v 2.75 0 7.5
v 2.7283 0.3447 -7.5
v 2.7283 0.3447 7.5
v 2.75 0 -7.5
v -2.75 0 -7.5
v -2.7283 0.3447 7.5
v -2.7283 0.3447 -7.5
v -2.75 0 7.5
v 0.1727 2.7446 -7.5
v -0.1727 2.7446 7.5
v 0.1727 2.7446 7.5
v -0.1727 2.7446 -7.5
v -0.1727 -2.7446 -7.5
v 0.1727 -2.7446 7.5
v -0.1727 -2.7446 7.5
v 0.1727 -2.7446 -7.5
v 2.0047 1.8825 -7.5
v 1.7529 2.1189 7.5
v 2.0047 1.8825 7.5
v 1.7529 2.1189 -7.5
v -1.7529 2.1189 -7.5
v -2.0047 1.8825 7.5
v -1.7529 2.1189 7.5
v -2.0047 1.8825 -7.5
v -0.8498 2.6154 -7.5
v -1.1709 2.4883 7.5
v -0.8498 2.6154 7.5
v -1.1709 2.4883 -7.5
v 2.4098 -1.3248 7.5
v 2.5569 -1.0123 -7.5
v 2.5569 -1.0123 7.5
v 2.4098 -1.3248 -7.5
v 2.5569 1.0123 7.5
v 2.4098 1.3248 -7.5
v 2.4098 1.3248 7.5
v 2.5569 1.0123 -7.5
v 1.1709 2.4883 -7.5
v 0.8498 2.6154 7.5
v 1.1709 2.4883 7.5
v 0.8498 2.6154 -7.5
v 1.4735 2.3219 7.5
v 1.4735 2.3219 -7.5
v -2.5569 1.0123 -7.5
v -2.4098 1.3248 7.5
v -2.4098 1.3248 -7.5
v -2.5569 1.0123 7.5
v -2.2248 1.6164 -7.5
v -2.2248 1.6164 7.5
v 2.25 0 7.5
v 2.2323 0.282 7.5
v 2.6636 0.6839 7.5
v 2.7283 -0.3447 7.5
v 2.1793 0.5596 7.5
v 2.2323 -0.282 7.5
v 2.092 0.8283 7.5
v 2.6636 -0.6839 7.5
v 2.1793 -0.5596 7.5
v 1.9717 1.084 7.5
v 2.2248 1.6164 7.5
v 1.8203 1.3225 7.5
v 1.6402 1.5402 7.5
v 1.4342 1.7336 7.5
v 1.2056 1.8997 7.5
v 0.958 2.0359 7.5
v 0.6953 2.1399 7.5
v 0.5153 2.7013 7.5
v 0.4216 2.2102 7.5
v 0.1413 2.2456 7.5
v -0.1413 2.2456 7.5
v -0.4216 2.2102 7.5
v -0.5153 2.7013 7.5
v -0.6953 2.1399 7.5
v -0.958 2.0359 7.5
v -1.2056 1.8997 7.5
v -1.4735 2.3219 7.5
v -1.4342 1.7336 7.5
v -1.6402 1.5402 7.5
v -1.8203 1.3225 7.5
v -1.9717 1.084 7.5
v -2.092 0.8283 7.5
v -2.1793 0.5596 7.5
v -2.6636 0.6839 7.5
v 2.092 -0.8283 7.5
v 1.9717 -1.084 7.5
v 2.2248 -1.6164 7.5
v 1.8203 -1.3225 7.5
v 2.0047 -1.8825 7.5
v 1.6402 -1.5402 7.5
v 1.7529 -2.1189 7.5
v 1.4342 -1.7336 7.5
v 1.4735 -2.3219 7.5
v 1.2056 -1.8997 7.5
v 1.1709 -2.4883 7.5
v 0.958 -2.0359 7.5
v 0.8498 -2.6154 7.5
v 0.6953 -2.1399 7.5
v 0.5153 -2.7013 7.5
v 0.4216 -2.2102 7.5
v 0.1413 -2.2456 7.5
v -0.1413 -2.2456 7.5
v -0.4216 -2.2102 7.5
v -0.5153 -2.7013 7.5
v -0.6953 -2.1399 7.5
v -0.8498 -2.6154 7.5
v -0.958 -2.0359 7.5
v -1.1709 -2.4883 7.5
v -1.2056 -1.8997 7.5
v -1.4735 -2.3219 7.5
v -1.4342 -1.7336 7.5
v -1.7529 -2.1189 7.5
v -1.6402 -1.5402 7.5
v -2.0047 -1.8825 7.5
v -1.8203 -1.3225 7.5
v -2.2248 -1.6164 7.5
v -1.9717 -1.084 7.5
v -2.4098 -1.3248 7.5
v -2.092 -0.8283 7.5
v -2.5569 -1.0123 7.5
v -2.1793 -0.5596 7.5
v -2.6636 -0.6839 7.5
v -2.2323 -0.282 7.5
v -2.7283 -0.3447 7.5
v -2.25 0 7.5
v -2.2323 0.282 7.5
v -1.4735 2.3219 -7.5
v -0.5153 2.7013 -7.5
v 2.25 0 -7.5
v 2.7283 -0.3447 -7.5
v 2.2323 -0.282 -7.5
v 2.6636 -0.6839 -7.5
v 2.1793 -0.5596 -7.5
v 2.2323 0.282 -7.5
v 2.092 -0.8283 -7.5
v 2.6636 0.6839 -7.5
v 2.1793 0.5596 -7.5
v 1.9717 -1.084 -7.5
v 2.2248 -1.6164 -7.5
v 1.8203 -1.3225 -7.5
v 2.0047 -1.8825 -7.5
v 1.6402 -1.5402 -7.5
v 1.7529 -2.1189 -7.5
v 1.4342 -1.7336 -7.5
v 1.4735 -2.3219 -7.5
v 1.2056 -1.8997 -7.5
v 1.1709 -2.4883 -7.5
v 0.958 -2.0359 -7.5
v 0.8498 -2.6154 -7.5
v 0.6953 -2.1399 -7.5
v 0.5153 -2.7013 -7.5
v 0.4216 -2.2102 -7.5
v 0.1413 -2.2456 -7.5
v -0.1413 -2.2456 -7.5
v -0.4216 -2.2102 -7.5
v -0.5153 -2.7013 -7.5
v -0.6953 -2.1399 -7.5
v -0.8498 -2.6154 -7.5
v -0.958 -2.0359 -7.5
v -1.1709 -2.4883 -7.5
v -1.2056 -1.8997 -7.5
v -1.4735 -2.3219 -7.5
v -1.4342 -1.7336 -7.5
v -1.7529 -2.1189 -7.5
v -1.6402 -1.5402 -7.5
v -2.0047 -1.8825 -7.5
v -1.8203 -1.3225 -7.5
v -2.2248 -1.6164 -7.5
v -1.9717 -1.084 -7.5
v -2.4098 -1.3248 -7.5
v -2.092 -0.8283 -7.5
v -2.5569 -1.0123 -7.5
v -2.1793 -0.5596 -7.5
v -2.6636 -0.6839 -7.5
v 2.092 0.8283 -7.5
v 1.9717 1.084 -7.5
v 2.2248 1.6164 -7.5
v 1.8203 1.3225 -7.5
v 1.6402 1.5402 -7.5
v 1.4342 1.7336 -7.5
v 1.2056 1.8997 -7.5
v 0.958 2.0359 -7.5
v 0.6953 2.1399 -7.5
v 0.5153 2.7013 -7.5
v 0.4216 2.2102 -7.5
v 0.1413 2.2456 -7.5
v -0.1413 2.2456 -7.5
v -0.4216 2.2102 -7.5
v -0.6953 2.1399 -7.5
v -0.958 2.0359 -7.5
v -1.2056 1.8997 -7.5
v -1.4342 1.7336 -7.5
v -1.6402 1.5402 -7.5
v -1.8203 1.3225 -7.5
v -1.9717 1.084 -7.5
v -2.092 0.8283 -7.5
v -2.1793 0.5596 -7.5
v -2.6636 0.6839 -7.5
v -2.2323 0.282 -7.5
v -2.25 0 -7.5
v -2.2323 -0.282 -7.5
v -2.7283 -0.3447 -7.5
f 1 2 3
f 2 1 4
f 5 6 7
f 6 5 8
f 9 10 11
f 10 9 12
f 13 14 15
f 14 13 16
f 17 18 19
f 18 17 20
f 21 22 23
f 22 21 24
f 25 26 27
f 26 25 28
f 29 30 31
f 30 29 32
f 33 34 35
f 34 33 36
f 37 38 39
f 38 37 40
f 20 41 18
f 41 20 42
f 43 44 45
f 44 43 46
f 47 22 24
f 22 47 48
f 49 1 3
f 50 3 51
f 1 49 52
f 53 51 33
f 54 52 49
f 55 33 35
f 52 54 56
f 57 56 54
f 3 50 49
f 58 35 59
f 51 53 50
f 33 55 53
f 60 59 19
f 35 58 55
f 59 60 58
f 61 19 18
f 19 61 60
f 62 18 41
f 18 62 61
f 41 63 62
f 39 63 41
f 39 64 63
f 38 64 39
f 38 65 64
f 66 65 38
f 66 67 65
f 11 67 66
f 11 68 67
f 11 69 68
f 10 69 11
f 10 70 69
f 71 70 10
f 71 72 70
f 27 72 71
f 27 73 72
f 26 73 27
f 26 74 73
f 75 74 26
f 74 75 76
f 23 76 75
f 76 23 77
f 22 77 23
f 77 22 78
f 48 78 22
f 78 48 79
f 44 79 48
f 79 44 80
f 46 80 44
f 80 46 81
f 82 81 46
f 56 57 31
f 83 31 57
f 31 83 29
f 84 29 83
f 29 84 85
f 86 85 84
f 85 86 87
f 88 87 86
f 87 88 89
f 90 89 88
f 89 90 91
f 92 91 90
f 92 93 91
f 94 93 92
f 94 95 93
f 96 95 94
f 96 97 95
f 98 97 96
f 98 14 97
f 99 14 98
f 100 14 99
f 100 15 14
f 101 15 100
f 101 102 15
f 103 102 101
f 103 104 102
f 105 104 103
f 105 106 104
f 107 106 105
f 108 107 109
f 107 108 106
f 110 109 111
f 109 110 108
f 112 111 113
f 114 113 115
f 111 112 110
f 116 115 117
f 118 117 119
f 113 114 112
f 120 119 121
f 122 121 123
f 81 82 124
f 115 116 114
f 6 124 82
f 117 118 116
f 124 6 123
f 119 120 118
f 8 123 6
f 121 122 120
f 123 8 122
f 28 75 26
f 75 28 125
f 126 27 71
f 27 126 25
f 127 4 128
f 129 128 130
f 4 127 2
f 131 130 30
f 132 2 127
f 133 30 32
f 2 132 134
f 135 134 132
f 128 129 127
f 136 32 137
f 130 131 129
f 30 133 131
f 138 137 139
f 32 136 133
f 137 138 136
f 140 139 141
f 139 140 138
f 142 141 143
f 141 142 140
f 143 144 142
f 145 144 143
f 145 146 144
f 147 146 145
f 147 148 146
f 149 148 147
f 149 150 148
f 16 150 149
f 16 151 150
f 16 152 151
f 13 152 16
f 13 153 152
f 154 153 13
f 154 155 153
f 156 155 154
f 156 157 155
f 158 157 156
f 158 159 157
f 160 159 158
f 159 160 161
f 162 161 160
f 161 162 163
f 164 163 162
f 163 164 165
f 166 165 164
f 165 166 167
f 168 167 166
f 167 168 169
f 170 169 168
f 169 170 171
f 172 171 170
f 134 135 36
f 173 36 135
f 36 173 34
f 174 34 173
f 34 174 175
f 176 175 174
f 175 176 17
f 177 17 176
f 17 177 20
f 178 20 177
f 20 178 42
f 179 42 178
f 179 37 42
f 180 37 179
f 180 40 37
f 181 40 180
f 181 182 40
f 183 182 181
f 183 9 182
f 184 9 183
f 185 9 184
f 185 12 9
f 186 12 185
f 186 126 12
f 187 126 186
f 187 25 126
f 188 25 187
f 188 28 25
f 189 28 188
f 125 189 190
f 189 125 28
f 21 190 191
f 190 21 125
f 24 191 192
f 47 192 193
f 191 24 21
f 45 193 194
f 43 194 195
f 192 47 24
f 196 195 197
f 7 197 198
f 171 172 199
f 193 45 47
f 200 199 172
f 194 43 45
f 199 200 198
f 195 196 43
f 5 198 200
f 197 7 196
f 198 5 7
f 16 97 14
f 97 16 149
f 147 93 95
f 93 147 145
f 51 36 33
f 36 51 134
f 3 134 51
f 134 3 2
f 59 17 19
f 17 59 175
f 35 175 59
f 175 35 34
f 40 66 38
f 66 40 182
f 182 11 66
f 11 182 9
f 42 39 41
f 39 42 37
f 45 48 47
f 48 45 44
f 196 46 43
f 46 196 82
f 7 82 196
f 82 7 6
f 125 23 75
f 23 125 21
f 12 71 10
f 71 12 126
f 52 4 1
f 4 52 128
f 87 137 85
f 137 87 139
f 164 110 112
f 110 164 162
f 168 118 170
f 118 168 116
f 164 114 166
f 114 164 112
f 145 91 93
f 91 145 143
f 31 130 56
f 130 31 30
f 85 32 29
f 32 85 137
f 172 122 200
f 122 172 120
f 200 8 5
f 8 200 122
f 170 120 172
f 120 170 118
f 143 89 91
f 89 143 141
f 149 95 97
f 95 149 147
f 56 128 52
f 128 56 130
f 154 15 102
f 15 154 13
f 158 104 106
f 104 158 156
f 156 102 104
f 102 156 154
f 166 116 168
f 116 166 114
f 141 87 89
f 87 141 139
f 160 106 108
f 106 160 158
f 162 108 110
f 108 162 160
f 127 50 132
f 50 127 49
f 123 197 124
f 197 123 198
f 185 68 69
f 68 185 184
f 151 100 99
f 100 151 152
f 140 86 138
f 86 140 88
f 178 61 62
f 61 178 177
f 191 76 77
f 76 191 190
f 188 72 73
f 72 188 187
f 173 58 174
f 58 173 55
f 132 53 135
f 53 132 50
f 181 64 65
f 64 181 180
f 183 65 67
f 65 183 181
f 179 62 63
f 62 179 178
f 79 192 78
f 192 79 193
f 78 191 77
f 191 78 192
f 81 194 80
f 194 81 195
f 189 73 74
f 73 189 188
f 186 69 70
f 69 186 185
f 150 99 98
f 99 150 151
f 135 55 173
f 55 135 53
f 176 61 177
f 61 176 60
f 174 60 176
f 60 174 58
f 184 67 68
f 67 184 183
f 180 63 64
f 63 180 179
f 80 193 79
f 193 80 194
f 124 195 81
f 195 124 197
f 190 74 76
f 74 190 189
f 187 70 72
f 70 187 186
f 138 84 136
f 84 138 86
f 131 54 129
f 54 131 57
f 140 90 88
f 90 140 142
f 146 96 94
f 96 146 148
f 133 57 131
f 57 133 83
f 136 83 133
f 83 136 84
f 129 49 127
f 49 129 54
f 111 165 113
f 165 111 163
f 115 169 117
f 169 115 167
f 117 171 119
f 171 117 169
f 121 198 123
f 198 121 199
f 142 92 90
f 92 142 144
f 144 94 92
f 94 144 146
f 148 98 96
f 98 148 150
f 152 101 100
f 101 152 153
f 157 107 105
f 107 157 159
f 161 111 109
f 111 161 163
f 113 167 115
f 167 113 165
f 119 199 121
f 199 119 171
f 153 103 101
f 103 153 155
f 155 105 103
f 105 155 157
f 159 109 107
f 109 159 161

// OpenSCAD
$fn = 50;


difference() {
	union() {
		translate(v = [0, 0, -7.5000000000]) {
			cylinder(h = 15, r = 2.7500000000);
		}
	}
	union() {
		translate(v = [0, 0, -100.0000000000]) {
			cylinder(h = 200, r = 2.2500000000);
		}
	}
}
